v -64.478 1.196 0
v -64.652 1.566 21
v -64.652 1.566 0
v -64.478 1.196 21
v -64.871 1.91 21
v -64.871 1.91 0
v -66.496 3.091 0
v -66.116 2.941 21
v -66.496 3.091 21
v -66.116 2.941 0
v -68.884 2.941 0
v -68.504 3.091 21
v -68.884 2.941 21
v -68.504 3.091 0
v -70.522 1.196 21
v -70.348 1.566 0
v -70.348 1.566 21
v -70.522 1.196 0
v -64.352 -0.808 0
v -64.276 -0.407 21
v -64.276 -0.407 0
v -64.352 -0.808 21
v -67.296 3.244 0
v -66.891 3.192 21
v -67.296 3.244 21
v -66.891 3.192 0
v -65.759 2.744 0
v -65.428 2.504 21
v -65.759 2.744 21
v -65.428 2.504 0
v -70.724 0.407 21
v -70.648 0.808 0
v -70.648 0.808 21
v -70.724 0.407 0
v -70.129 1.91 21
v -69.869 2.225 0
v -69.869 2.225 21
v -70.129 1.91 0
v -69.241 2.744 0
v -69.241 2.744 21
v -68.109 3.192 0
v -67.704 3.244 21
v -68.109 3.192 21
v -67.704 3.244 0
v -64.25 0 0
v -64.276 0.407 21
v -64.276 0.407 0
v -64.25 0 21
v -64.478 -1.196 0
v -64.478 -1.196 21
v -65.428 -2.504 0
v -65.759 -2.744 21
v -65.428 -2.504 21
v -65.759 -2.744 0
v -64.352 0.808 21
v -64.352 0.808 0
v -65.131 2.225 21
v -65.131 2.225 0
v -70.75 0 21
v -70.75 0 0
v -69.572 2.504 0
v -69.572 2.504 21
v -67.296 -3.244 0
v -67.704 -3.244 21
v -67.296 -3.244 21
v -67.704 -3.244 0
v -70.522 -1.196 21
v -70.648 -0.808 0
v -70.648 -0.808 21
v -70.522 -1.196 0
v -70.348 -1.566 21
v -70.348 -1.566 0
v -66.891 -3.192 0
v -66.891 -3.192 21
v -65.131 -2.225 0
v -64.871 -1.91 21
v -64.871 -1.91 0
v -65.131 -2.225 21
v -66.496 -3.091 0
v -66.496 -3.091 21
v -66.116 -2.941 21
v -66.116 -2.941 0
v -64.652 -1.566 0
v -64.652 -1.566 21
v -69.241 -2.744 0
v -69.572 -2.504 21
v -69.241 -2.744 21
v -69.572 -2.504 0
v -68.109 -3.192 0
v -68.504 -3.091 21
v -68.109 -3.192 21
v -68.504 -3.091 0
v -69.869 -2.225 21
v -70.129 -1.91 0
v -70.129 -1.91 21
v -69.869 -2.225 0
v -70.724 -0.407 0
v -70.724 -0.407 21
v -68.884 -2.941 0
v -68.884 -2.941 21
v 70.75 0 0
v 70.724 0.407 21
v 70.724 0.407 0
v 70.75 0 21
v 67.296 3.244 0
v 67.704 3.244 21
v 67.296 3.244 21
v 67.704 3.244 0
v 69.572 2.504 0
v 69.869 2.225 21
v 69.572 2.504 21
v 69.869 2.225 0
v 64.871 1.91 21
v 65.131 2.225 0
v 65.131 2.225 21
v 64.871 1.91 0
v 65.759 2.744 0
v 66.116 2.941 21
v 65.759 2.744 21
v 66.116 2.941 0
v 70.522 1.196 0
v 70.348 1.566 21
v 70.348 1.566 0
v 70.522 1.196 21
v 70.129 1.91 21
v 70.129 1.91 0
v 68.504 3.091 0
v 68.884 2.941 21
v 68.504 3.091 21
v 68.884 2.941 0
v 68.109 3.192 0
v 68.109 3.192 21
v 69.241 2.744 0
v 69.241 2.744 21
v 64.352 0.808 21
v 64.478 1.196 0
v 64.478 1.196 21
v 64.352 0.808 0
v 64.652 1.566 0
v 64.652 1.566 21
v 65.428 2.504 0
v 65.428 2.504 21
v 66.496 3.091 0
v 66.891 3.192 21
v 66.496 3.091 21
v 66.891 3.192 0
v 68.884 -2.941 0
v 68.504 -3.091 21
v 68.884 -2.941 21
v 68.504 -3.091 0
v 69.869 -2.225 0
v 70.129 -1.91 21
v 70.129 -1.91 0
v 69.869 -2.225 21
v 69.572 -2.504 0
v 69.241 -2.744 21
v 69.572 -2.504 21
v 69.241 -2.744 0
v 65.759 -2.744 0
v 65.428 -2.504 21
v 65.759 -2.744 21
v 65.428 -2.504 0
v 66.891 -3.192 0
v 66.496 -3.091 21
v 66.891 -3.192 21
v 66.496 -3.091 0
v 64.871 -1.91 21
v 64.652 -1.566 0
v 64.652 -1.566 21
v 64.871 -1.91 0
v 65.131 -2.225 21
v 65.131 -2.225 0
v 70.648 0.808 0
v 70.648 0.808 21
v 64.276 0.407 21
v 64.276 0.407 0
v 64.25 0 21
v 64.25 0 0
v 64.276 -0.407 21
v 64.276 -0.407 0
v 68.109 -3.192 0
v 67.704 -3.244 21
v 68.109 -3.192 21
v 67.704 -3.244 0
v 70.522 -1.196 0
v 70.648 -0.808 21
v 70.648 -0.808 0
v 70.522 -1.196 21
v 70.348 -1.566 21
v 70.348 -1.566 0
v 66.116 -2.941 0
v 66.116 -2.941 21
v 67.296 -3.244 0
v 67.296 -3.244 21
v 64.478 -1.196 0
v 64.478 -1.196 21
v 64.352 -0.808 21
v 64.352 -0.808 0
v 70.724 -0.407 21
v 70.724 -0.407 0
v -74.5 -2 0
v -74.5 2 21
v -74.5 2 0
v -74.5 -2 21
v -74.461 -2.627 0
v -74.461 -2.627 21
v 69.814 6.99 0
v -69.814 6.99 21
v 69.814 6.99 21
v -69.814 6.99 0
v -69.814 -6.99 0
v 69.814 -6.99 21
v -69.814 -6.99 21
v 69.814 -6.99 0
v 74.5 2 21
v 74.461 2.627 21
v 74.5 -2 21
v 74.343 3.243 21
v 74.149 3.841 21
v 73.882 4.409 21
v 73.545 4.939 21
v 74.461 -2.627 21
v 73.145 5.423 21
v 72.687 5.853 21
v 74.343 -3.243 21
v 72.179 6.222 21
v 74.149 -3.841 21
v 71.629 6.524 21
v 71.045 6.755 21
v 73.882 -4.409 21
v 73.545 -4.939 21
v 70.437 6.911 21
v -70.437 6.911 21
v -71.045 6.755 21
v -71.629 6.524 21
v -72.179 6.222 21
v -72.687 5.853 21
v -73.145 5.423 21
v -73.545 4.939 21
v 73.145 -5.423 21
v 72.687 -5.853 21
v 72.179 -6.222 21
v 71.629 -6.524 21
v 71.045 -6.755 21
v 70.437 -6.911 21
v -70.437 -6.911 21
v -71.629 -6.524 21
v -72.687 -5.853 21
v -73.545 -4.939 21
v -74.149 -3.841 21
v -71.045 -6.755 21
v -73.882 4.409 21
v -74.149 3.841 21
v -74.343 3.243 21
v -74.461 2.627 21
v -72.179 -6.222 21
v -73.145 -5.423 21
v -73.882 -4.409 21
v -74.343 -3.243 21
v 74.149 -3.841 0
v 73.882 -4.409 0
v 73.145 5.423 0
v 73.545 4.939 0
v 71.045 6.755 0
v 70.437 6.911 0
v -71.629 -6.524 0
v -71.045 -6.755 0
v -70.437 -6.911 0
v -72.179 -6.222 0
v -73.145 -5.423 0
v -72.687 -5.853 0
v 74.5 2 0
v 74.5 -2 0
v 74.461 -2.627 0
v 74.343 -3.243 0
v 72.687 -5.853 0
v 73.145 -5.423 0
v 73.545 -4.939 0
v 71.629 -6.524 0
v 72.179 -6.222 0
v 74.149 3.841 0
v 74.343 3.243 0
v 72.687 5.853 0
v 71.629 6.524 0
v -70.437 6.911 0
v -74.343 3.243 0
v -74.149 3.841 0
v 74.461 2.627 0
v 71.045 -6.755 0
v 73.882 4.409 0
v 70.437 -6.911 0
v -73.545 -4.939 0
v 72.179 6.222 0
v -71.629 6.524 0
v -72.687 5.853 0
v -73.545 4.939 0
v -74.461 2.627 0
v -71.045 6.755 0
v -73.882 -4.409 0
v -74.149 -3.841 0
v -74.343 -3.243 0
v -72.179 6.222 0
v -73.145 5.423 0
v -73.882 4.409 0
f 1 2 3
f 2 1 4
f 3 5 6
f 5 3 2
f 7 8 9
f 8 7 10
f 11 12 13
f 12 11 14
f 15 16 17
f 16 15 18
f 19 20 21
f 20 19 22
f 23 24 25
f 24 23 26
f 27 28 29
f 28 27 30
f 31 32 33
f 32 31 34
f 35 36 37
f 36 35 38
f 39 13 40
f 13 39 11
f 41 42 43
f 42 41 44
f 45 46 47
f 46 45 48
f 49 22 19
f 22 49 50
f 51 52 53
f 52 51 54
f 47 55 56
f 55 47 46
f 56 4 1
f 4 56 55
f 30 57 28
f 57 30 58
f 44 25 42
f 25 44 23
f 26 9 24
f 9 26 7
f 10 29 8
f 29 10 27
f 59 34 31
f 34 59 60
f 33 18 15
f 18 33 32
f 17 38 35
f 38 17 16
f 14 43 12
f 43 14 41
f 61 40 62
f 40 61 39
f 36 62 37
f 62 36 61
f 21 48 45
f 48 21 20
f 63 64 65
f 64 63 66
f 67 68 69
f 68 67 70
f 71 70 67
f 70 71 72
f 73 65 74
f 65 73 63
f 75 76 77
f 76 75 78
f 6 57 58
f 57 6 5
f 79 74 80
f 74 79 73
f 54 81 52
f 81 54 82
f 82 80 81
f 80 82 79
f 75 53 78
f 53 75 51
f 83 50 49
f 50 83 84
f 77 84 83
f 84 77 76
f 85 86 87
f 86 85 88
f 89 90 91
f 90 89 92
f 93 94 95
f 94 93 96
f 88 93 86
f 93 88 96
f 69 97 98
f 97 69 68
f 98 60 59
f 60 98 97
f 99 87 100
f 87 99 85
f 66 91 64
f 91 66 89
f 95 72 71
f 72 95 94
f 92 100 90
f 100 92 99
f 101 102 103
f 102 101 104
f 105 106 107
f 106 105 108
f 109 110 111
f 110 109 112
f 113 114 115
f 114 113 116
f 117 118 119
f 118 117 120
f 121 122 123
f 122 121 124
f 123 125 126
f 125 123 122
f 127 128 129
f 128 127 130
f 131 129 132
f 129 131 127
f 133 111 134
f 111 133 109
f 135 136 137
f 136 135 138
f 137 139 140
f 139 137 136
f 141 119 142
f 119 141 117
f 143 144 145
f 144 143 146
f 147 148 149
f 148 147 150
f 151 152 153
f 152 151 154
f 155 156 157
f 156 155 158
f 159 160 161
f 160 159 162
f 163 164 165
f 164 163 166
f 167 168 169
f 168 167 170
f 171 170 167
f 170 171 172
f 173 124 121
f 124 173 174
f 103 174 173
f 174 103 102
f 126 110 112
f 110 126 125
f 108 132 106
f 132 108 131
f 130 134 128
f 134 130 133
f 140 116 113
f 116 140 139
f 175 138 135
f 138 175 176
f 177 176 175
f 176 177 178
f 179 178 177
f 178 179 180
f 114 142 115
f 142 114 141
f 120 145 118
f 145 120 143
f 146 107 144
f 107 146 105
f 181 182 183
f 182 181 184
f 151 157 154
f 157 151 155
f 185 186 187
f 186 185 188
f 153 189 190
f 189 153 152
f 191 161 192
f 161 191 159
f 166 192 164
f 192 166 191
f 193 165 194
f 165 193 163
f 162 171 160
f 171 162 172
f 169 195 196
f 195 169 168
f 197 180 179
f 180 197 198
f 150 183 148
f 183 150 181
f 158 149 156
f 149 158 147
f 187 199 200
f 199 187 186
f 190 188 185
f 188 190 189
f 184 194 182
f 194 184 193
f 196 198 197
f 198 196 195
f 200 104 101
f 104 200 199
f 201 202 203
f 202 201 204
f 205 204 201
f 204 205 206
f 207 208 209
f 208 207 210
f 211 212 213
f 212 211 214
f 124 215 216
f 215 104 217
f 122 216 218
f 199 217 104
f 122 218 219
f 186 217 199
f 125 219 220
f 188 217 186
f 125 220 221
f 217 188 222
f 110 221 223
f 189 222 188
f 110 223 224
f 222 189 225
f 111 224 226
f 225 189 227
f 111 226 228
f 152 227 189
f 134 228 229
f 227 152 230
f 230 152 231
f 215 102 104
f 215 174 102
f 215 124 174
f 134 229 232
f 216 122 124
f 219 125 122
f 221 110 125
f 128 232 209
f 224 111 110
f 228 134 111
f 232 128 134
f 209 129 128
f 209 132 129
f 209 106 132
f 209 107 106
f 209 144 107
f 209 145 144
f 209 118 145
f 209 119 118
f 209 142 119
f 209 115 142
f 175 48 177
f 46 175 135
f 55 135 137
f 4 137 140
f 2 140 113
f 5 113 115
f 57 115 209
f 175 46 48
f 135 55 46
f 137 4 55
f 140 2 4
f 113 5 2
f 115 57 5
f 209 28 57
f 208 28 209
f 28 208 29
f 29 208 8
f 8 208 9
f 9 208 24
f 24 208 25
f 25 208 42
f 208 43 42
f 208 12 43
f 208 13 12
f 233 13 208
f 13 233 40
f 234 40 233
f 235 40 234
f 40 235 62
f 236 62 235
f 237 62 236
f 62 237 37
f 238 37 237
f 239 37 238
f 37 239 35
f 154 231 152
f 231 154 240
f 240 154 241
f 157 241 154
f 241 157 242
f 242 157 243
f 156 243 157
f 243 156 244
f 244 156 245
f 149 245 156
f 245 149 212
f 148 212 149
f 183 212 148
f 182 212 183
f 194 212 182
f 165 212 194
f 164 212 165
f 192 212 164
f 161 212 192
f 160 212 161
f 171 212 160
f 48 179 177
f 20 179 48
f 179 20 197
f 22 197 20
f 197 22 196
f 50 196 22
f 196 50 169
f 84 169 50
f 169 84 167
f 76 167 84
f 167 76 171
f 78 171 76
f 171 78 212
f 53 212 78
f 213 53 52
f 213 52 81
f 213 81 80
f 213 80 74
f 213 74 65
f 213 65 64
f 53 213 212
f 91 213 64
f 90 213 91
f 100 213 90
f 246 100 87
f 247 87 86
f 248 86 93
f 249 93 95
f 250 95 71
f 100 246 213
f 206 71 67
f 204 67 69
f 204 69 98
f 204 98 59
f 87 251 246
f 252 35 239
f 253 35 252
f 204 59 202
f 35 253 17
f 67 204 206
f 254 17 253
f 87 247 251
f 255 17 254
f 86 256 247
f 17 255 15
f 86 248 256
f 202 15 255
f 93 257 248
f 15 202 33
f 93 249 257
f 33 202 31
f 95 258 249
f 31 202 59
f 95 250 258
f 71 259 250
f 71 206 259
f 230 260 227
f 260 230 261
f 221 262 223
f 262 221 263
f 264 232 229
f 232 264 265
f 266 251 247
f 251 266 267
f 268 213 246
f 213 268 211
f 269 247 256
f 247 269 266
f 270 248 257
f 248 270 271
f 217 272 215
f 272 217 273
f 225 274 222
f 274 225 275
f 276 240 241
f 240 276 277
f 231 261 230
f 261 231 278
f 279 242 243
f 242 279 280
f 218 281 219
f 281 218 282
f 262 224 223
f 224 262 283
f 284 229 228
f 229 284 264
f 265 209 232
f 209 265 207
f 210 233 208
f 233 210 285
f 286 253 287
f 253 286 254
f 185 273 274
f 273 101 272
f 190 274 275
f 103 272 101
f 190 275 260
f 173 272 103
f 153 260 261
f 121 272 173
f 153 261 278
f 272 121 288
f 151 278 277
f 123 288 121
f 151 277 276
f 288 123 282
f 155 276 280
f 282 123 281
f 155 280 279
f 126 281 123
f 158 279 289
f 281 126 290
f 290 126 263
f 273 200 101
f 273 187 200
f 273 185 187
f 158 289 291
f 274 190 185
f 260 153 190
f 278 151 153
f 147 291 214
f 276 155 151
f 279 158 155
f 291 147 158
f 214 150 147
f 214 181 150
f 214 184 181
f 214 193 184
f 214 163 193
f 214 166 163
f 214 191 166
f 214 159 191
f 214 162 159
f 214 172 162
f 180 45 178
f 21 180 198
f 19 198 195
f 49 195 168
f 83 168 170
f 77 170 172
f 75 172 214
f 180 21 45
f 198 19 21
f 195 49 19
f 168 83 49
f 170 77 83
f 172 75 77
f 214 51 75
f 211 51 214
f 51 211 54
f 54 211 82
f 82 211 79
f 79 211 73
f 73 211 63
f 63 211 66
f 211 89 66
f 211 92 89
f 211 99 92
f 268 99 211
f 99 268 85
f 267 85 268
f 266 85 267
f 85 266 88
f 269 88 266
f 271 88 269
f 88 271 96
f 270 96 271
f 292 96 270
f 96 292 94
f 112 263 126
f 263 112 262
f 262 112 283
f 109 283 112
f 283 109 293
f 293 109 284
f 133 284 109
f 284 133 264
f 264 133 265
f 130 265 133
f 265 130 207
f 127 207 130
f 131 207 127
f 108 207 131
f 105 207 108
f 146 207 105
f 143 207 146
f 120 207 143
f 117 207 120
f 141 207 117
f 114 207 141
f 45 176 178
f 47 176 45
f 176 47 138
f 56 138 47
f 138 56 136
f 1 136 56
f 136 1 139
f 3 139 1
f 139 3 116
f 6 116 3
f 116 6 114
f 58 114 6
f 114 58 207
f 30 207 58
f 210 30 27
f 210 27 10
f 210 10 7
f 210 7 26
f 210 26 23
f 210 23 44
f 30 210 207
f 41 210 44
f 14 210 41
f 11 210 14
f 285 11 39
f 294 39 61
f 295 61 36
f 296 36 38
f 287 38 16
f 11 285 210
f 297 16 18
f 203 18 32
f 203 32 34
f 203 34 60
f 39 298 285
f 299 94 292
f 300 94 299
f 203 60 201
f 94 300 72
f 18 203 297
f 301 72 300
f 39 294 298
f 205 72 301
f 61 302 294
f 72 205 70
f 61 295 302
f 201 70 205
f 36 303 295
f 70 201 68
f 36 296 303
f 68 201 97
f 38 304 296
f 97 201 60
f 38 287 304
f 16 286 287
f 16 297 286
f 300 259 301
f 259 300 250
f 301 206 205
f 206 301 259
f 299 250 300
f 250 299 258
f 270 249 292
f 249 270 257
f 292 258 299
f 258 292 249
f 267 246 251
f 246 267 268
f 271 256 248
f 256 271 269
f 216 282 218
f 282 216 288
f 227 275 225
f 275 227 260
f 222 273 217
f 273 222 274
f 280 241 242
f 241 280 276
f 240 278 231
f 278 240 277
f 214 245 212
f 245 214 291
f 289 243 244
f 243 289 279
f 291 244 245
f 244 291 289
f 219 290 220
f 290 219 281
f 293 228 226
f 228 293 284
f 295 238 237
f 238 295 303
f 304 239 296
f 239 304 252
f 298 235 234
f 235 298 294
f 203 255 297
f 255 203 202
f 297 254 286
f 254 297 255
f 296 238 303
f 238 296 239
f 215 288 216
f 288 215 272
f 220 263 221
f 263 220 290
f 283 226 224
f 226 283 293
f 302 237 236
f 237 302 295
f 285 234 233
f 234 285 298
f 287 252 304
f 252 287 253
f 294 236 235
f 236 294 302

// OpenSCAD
$fn = 50;


difference() {
	union() {
		hull() {
			translate(v = [-69.5000000000, 2.0000000000, 0]) {
				cylinder(h = 21, r = 5);
			}
			translate(v = [69.5000000000, 2.0000000000, 0]) {
				cylinder(h = 21, r = 5);
			}
			translate(v = [-69.5000000000, -2.0000000000, 0]) {
				cylinder(h = 21, r = 5);
			}
			translate(v = [69.5000000000, -2.0000000000, 0]) {
				cylinder(h = 21, r = 5);
			}
		}
	}
	union() {
		translate(v = [-67.5000000000, 0.0000000000, -100.0000000000]) {
			cylinder(h = 200, r = 3.2500000000);
		}
		translate(v = [-67.5000000000, 0.0000000000, -100.0000000000]) {
			cylinder(h = 200, r = 3.2500000000);
		}
		translate(v = [67.5000000000, 0.0000000000, -100.0000000000]) {
			cylinder(h = 200, r = 3.2500000000);
		}
		translate(v = [67.5000000000, 0.0000000000, -100.0000000000]) {
			cylinder(h = 200, r = 3.2500000000);
		}
	}
}
